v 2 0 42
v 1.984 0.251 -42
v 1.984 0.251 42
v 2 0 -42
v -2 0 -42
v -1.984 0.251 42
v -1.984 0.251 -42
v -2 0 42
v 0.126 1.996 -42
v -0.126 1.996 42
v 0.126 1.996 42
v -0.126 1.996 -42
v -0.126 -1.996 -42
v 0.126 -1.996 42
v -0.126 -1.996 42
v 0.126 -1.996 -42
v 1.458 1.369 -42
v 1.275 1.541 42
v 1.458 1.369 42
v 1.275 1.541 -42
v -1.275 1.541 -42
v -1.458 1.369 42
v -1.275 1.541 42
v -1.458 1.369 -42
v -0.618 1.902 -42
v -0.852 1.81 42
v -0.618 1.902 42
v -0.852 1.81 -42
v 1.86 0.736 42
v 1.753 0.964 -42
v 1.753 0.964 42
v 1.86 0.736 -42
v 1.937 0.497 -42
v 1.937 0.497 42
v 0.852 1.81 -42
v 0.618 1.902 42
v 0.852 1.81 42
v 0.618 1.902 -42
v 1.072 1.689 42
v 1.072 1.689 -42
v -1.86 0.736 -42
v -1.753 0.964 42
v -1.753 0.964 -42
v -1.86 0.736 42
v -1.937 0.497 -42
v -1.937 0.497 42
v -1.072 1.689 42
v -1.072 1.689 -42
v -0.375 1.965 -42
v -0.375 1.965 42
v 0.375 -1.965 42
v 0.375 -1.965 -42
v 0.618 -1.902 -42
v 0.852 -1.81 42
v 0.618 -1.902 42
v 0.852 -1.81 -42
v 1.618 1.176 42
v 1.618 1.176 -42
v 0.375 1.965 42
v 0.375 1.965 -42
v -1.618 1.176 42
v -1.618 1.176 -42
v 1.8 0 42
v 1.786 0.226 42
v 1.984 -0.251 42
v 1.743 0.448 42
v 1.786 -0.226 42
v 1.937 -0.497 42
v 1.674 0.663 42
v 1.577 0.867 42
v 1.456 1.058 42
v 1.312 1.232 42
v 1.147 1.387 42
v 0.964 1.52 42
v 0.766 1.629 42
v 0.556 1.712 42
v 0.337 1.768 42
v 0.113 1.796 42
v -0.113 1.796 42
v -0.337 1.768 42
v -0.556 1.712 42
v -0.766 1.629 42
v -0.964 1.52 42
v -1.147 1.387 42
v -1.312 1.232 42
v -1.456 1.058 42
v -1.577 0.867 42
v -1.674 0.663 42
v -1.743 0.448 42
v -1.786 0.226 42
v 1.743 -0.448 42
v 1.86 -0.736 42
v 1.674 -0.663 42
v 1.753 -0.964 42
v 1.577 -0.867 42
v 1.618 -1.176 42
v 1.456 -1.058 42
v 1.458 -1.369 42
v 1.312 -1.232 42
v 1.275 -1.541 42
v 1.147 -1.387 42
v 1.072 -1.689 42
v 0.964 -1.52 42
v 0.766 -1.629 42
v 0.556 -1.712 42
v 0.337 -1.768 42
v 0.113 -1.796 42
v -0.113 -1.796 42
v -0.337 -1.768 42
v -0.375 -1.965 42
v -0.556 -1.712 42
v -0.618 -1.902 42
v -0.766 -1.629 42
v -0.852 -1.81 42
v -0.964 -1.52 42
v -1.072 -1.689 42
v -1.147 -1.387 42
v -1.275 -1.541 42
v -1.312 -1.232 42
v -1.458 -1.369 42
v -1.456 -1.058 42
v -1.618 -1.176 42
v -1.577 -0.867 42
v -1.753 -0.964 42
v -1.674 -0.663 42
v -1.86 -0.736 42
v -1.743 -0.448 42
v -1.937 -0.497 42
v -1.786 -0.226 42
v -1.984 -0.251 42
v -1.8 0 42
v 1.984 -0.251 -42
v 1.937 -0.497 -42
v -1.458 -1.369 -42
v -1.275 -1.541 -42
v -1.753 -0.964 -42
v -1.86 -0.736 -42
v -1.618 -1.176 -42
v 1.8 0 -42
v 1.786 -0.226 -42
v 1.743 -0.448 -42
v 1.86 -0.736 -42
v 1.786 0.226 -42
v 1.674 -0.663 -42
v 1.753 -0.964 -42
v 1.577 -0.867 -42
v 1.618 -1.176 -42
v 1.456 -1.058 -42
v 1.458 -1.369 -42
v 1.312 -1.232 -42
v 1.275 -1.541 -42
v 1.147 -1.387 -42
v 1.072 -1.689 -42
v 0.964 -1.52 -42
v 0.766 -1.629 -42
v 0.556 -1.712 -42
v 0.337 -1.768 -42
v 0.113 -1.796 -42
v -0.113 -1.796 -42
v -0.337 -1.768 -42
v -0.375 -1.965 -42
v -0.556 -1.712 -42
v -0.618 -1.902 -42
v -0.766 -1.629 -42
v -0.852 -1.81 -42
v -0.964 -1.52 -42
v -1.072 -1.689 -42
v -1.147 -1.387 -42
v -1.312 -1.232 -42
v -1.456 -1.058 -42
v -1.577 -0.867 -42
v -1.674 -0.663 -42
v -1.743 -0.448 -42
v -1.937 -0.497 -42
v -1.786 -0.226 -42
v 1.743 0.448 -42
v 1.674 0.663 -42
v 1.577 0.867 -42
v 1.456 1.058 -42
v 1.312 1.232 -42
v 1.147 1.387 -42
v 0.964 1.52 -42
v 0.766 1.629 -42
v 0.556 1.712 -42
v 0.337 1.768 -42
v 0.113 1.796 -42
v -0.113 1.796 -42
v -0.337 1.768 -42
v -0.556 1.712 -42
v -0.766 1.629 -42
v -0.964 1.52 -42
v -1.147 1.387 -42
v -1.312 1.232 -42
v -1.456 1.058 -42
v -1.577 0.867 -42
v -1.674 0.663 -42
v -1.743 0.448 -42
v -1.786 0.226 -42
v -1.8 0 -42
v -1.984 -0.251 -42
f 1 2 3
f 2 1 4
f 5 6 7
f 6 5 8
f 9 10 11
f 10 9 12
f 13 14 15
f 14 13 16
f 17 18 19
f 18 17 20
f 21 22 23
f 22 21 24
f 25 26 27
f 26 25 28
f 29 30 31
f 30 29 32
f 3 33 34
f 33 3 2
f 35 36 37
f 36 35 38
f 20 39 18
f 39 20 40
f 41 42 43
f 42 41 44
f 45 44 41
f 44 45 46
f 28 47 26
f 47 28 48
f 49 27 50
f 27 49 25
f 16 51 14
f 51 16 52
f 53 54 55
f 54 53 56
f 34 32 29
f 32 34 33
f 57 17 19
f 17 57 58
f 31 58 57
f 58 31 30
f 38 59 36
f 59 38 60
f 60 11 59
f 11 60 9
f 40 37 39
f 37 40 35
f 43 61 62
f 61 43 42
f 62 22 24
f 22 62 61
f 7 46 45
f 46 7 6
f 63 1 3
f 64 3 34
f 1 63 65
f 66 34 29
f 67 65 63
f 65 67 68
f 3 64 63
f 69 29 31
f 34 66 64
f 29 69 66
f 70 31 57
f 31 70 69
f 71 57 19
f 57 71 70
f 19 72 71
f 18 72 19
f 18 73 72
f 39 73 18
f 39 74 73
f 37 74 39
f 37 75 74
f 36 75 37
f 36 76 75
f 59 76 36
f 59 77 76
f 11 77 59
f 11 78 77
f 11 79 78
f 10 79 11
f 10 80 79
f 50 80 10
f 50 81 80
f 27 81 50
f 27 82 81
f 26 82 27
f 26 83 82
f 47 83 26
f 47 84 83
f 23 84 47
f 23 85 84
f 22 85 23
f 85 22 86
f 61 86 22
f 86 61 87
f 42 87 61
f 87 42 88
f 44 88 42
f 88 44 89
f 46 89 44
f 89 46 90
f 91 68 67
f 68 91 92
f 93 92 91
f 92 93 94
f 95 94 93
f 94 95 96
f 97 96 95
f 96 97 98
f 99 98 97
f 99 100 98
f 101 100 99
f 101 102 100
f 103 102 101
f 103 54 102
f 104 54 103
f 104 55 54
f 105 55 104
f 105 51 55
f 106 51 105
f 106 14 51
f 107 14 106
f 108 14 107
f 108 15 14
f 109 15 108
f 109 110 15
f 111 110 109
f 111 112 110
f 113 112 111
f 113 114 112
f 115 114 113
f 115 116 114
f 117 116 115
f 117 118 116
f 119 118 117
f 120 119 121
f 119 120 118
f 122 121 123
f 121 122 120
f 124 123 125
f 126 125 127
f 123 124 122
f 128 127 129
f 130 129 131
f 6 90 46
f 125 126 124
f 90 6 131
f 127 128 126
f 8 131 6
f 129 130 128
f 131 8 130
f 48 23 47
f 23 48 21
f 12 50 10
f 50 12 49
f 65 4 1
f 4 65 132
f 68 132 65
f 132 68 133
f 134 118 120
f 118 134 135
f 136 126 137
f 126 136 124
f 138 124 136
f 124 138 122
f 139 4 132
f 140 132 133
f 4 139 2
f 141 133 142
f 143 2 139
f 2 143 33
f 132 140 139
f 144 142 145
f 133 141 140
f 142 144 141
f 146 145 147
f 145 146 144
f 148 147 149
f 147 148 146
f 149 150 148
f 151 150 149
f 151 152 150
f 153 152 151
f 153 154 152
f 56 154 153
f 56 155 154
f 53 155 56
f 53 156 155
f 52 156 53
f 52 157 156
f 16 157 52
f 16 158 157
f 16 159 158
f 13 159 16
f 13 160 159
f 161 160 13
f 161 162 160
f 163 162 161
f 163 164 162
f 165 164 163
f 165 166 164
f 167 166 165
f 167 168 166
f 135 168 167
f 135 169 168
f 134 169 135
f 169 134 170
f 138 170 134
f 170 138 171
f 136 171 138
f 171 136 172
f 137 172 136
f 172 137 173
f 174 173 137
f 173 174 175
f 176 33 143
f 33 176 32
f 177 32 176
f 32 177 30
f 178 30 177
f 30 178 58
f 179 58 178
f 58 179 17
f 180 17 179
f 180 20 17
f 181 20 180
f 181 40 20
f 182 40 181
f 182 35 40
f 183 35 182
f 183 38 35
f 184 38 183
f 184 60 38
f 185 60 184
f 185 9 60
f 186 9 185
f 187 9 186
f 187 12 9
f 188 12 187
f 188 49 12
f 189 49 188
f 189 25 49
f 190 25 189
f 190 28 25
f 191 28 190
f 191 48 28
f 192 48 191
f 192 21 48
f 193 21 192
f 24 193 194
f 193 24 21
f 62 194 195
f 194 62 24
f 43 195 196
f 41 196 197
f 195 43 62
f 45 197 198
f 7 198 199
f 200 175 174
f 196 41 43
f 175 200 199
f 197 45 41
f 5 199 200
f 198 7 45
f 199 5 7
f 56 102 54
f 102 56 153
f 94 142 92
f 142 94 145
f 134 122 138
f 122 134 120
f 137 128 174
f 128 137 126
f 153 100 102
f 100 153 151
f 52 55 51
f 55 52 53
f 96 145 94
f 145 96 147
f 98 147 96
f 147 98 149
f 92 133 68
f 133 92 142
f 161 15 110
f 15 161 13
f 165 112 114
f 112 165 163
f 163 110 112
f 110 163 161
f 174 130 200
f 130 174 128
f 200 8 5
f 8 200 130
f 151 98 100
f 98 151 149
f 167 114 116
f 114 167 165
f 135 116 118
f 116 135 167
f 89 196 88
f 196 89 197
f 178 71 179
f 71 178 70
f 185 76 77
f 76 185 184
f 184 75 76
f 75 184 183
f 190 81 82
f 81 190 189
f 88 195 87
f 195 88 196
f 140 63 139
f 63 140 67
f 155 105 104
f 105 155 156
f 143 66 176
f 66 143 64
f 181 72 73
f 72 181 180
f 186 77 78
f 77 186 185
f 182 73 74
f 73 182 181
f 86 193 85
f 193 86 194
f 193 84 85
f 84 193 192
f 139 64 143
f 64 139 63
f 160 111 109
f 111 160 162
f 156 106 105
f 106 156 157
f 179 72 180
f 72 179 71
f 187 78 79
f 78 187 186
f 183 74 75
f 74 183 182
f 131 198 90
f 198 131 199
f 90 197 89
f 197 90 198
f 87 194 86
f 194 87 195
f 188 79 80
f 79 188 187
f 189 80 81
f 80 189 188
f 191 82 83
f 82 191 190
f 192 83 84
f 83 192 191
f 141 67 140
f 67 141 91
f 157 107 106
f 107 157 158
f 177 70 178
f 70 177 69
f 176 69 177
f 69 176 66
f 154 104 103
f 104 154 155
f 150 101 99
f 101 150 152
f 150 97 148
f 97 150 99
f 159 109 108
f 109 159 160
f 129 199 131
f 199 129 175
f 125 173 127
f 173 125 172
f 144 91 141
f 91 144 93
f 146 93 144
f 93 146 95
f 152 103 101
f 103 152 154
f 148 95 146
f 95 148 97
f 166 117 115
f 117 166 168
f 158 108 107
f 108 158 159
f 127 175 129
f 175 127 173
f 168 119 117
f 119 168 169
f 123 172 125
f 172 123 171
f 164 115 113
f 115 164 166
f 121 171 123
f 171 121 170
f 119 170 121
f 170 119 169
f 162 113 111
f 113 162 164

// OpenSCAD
$fn = 50;


difference() {
	union() {
		translate(v = [0, 0, -42.0000000000]) {
			cylinder(h = 84, r = 2.0000000000);
		}
	}
	union() {
		translate(v = [0, 0, -100.0000000000]) {
			cylinder(h = 200, r = 1.8000000000);
		}
	}
}
